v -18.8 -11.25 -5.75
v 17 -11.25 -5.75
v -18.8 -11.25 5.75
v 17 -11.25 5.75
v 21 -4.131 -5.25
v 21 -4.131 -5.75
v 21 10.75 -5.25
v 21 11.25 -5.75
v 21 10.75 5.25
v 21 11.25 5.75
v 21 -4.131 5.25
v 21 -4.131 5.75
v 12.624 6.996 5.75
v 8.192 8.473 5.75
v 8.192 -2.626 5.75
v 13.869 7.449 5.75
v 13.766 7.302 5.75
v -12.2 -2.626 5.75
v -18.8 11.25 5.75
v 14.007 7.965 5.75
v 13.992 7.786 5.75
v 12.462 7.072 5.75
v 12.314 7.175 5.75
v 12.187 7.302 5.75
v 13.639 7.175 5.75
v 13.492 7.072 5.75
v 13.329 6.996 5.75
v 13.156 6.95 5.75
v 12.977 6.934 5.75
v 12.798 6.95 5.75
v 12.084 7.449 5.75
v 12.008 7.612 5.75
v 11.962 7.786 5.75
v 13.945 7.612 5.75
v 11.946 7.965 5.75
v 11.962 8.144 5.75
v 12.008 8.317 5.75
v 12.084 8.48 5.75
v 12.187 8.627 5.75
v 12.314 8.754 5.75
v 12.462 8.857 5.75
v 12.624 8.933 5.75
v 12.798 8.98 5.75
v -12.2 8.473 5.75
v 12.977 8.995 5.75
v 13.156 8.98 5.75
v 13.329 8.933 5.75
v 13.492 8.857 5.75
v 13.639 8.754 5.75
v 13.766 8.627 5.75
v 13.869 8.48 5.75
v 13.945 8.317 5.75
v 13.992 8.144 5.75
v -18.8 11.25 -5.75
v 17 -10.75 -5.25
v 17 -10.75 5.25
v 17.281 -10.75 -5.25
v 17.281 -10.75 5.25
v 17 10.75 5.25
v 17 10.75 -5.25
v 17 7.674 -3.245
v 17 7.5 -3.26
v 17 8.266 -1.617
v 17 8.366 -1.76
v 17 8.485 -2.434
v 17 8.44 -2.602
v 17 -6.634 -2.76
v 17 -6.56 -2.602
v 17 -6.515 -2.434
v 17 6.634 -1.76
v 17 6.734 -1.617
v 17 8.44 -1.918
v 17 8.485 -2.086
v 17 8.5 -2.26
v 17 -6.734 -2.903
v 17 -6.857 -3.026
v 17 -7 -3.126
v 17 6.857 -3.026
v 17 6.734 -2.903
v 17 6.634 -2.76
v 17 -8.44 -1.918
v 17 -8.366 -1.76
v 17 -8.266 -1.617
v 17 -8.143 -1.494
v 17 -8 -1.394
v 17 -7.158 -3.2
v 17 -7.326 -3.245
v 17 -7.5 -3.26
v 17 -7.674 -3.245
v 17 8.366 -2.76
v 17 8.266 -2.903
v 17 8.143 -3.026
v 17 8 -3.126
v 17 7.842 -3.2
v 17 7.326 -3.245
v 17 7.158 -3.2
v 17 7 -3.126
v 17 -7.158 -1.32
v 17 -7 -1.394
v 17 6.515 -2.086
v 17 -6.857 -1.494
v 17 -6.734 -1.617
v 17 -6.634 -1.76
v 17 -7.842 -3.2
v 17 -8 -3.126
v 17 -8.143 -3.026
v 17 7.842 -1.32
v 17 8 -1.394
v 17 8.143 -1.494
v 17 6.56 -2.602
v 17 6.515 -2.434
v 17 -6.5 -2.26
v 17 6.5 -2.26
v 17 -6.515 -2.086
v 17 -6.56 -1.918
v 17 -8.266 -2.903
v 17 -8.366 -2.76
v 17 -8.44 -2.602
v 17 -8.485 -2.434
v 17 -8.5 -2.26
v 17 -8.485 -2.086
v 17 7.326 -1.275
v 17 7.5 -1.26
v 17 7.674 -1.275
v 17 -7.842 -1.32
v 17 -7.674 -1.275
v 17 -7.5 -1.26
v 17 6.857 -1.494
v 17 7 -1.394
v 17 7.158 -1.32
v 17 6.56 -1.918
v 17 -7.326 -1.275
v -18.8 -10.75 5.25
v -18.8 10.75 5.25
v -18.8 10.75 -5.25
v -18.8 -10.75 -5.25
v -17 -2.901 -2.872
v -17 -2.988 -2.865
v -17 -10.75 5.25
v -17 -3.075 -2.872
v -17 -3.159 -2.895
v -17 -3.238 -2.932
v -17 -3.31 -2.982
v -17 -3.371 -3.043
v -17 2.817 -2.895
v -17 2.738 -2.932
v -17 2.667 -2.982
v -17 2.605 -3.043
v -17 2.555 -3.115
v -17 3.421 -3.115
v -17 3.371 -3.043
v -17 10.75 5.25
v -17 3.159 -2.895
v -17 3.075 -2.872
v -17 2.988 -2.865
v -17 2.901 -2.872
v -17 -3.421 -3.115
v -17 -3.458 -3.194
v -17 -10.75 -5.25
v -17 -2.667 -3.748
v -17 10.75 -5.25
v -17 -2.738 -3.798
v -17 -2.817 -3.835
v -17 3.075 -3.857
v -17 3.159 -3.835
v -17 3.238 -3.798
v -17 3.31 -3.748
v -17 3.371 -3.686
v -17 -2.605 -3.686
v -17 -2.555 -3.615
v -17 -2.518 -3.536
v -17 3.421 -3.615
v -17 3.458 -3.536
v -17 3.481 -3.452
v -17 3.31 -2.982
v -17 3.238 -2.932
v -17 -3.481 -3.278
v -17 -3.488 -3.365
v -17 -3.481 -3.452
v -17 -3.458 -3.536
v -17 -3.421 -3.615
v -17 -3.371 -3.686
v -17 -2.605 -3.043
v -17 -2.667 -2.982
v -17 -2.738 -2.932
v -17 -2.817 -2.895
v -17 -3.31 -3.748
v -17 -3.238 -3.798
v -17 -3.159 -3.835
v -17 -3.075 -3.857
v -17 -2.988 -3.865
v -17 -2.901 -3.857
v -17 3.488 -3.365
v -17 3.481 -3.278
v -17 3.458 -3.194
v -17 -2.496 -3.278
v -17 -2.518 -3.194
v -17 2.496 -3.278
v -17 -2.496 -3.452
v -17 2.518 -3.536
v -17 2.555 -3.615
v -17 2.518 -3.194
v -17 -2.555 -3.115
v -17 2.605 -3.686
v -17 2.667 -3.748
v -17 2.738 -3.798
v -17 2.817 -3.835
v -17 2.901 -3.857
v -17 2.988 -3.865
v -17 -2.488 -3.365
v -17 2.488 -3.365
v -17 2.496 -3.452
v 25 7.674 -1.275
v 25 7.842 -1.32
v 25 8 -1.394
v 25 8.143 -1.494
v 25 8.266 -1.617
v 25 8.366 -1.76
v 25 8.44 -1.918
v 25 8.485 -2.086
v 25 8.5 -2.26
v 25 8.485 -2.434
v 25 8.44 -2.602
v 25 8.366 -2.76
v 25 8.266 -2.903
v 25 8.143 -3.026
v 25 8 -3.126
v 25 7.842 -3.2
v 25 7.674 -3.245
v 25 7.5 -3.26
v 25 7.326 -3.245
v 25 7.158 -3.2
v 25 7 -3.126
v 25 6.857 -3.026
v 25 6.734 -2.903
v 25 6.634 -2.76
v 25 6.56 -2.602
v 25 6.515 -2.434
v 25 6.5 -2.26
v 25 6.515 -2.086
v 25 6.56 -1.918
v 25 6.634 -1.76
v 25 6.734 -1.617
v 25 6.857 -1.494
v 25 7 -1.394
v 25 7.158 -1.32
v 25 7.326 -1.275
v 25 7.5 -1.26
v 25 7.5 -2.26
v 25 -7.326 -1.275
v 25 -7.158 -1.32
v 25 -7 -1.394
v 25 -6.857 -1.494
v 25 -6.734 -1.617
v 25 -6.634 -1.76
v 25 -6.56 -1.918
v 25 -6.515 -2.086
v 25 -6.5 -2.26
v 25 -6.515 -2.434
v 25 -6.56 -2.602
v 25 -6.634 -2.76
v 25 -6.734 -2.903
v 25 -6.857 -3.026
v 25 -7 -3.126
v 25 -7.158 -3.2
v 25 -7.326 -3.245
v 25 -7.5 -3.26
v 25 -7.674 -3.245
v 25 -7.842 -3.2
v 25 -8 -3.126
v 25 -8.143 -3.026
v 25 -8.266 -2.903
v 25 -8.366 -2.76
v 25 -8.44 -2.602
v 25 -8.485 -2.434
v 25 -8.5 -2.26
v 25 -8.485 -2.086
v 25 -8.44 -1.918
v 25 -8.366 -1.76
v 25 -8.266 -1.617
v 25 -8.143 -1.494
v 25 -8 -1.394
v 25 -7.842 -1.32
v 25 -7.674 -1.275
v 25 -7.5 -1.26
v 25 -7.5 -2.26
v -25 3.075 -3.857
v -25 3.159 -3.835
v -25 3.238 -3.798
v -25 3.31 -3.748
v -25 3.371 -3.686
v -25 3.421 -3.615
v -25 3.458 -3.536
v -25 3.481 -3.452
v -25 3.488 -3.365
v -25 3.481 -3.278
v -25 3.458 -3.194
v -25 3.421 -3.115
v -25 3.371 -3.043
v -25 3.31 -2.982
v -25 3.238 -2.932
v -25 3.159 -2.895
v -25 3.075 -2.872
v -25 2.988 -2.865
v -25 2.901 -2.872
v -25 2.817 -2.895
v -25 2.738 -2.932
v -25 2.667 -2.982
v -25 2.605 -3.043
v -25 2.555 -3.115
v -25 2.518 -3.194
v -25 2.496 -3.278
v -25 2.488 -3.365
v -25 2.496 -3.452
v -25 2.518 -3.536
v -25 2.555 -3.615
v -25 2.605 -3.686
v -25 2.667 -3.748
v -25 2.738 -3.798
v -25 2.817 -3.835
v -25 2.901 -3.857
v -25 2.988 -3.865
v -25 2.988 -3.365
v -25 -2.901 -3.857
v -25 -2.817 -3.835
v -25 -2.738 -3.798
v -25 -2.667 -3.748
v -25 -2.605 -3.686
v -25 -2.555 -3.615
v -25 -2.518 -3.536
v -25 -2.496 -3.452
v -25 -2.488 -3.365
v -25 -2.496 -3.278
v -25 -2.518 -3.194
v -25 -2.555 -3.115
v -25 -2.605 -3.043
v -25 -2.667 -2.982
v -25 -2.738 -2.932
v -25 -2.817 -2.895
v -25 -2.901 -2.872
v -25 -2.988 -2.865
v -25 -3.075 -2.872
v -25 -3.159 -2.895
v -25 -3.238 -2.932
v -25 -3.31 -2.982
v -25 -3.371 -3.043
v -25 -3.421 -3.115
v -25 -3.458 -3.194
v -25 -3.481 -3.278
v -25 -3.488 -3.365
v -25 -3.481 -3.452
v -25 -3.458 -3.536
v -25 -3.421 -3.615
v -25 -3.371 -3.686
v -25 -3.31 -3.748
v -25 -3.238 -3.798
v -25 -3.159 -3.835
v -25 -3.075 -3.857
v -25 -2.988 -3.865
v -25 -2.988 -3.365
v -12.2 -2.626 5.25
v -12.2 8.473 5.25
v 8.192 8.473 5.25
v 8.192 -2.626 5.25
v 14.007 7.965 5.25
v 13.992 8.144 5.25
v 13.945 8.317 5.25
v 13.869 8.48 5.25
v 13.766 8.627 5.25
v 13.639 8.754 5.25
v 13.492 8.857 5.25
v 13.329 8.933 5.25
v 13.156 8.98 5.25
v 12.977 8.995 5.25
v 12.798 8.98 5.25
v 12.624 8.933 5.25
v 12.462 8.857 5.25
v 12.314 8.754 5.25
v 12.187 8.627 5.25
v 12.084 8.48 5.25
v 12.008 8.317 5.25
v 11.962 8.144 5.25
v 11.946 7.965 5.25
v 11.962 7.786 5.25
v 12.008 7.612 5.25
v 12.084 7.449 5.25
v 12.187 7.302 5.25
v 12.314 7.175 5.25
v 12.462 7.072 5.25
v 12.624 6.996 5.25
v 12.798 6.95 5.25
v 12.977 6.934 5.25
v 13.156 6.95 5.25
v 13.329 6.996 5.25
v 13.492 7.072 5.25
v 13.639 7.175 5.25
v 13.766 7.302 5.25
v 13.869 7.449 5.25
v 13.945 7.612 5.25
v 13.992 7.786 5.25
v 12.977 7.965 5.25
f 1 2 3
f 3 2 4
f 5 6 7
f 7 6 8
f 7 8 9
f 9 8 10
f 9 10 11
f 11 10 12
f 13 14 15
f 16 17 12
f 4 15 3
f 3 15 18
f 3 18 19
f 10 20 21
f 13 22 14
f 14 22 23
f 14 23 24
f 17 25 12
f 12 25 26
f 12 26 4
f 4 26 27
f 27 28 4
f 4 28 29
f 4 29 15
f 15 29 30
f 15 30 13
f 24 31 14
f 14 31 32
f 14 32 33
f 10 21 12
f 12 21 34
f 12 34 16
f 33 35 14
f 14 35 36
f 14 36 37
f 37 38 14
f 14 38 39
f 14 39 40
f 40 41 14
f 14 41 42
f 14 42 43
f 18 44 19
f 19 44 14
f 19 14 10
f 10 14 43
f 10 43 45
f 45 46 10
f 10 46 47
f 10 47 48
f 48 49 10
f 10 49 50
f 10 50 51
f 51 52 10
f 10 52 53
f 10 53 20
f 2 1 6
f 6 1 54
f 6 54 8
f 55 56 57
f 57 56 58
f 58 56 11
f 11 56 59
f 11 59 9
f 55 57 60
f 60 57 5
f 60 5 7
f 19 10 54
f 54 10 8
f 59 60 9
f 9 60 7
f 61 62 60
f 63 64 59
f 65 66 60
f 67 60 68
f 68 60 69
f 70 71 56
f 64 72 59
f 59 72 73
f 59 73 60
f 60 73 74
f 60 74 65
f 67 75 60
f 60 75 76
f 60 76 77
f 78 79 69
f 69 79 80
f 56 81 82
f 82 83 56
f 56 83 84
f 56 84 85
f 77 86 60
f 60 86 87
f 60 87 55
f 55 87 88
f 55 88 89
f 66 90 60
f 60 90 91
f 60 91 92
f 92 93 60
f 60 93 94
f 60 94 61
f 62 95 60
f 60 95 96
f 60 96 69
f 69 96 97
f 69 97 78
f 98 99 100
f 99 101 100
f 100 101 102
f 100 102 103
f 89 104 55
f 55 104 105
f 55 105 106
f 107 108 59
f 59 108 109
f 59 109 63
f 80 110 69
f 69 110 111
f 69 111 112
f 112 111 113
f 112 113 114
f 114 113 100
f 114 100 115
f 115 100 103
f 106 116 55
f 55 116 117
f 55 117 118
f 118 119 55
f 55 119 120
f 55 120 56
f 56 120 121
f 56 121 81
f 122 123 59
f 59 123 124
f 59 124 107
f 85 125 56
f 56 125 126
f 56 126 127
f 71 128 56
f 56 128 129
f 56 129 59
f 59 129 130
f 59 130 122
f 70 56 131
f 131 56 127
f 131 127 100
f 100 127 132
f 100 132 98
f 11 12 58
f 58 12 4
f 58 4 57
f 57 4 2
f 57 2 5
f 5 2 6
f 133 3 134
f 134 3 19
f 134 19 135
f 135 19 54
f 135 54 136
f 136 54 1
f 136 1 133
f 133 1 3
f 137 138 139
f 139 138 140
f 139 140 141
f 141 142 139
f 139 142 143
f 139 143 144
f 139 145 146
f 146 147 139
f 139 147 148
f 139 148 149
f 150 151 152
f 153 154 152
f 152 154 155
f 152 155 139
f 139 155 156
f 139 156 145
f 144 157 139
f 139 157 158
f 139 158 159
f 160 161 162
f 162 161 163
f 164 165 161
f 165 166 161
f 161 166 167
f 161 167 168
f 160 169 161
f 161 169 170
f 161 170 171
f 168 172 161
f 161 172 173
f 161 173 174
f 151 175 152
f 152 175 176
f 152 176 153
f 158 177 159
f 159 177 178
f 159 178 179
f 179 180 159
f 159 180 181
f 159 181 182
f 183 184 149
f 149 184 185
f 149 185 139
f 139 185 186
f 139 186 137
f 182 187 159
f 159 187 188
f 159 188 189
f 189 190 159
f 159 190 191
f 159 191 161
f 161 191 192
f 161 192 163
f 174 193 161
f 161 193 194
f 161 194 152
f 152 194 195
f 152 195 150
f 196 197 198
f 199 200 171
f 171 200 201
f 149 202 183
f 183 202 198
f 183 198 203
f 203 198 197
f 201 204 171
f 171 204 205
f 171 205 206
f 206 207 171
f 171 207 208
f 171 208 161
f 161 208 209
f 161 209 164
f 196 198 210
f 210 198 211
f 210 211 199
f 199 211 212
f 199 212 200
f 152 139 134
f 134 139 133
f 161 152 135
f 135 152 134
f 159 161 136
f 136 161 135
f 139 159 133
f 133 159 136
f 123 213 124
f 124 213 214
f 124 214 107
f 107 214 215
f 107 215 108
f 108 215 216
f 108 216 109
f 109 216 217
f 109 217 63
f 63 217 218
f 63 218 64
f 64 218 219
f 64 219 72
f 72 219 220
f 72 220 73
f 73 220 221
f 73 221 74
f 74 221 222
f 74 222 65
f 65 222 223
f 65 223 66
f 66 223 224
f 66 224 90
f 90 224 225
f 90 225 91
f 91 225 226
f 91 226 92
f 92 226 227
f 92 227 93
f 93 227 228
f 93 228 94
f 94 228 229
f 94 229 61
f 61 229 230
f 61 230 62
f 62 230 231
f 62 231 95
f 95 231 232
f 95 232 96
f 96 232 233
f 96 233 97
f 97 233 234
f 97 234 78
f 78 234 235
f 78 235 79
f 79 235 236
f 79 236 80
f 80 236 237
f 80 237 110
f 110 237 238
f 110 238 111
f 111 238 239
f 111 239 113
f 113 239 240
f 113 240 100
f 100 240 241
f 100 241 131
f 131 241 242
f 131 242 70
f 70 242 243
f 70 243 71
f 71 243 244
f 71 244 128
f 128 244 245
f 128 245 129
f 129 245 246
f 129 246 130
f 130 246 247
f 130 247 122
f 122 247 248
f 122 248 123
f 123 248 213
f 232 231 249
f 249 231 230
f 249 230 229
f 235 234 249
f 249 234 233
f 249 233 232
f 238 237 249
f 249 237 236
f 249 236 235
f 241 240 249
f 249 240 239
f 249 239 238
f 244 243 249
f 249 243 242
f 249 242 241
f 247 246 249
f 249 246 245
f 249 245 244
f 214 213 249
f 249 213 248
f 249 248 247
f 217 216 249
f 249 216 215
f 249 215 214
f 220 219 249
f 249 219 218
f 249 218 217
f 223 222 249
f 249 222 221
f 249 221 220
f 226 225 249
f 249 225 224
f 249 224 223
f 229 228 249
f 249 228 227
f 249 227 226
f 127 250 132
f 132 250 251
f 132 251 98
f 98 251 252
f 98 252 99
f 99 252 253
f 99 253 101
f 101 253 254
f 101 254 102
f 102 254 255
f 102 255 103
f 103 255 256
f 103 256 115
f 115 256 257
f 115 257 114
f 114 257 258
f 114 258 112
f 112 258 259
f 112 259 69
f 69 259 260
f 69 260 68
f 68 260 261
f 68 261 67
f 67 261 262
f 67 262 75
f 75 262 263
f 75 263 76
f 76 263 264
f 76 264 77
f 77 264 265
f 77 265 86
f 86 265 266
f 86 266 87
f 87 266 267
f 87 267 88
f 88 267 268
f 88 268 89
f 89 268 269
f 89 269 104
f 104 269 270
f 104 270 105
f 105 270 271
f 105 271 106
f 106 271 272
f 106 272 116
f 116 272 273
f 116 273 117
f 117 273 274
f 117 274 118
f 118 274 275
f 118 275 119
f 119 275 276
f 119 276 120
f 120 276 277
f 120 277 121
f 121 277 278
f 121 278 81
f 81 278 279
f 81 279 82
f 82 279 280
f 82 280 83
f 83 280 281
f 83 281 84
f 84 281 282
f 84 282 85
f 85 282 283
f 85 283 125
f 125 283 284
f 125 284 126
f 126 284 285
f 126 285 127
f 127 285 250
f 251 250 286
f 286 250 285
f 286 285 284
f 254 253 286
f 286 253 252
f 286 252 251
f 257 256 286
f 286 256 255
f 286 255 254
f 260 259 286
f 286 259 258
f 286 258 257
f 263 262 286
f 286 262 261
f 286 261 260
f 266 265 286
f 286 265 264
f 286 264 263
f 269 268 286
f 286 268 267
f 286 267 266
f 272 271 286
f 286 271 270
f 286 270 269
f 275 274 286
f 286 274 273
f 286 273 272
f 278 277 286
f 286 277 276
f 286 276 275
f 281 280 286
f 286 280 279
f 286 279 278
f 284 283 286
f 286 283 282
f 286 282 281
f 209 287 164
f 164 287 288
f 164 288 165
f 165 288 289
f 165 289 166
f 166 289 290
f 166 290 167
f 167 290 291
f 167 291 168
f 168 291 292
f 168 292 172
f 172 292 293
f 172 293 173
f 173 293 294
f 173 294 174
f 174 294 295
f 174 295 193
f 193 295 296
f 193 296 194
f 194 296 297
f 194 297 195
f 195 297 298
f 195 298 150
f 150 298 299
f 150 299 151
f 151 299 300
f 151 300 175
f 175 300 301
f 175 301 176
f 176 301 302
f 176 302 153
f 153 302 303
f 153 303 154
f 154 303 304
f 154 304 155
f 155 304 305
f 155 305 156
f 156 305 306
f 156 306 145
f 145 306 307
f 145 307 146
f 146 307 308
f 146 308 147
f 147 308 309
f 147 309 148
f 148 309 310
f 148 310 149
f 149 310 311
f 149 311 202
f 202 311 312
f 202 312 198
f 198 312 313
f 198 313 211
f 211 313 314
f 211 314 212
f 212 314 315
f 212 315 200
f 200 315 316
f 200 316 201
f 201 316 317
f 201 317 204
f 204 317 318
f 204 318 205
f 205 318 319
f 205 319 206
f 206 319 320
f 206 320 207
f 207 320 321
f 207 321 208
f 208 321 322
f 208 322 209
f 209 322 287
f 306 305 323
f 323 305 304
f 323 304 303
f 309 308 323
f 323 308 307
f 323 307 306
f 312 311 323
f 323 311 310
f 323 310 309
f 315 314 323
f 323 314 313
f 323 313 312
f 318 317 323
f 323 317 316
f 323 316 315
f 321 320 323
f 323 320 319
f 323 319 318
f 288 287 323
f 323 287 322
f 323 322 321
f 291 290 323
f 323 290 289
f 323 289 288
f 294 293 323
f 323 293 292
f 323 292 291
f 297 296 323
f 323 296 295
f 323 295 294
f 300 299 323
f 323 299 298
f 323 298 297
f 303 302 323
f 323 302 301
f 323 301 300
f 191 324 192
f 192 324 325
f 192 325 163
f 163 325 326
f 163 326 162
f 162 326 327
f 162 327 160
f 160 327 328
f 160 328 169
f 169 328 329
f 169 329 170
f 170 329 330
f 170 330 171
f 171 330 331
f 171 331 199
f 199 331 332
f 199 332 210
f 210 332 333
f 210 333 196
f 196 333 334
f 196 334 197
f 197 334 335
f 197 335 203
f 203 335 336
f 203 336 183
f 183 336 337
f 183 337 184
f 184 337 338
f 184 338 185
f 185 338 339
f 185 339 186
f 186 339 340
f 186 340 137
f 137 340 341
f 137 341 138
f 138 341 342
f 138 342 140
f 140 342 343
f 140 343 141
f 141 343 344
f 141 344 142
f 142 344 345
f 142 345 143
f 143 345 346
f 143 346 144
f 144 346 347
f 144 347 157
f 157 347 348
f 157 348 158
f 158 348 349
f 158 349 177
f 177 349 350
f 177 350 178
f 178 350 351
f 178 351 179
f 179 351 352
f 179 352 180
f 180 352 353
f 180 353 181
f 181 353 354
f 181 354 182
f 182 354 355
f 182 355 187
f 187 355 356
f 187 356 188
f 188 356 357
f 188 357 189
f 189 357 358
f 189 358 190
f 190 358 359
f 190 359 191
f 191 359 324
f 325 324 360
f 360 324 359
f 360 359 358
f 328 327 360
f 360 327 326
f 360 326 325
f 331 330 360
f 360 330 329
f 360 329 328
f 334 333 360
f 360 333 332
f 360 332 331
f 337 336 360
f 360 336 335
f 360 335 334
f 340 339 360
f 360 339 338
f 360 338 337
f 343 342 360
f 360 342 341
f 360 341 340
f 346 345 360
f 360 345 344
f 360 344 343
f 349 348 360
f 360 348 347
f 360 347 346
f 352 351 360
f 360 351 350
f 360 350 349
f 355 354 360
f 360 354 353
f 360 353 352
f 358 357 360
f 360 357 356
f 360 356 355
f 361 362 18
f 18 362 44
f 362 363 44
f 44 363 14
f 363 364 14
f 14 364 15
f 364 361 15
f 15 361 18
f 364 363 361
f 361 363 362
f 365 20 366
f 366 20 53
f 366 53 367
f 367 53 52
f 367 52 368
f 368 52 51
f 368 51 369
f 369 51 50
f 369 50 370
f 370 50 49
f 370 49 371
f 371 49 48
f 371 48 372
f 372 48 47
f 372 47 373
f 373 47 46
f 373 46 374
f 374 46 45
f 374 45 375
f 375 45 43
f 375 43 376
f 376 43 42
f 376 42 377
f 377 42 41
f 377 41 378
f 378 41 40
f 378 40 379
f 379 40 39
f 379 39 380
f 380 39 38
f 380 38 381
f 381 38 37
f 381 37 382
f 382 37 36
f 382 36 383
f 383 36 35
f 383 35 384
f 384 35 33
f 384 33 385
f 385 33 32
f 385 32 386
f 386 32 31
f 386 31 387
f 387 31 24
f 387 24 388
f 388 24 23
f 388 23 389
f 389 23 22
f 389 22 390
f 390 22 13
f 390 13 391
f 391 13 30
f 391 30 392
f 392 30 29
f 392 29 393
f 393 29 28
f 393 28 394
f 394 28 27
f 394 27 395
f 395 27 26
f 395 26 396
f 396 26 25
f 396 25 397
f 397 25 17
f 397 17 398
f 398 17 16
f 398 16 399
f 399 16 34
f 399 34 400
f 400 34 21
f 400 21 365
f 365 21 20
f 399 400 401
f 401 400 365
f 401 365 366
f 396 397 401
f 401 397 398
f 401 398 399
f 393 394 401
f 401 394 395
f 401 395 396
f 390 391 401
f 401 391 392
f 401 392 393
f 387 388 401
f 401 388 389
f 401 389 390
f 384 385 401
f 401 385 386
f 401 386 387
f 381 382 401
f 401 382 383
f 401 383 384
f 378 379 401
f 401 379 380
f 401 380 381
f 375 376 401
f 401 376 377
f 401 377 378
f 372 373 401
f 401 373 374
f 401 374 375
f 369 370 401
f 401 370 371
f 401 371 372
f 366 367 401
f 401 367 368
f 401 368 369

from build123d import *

# Parameters (mm, degrees)
SKETCH1_W           = 42
SKETCH1_H           = 22.5
BOSS_EXTRUDE1_DEPTH = 5.75
SKETCH2_W           = 10.5
SKETCH2_H           = 21.5
CUT_EXTRUDE1_DEPTH  = 4
CUT_EXTRUDE3_DEPTH  = 12.5
SKETCH8_W           = 2.2
SKETCH8_H           = 22.5
CUT_EXTRUDE4_DEPTH  = 12.5
SKETCH3_R           = 1
BOSS_EXTRUDE2_DEPTH = 8
SKETCH4_R           = 0.5
BOSS_EXTRUDE3_DEPTH = 8
SKETCH5_R           = 1.030633651
SKETCH5_W           = 20.392034512
SKETCH5_H           = 11.098868447
CUT_EXTRUDE2_DEPTH  = 0.5


with BuildPart() as part:
    # Sketch1 → Boss-Extrude1 (new body, symmetric)
    with BuildSketch(Plane.XY):
        Rectangle(SKETCH1_W, SKETCH1_H)
    extrude(amount=BOSS_EXTRUDE1_DEPTH, both=True)

    # Sketch2 → Cut-Extrude1 (cut)
    with BuildSketch(Plane(origin=(21, 0, 0), x_dir=(0, 0, -1), z_dir=(1, 0, 0))):
        Rectangle(SKETCH2_W, SKETCH2_H)
    cut_extrude1 = extrude(amount=-CUT_EXTRUDE1_DEPTH, mode=Mode.SUBTRACT)

    # Mirror1: Cut-Extrude1 across plane
    add(cut_extrude1.mirror(Plane(origin=(0, 0, 0), x_dir=(0, 0, 1), z_dir=(1, 0, 0))), mode=Mode.SUBTRACT)

    # Sketch7 → Cut-Extrude3 (cut, through all)
    with BuildSketch(Plane.XY.offset(-5.75)):
        Polygon((24.167892902, -4.130649904), (21, -4.130649904), (17, -11.25), (17, -14.180704283), (24.167892902, -14.180704283), align=None)
    extrude(amount=CUT_EXTRUDE3_DEPTH, mode=Mode.SUBTRACT)

    # Sketch8 → Cut-Extrude4 (cut, through all)
    with BuildSketch(Plane.XY.offset(5.75)):
        with Locations((-19.9, 0)):
            Rectangle(SKETCH8_W, SKETCH8_H)
    extrude(amount=-CUT_EXTRUDE4_DEPTH, mode=Mode.SUBTRACT)

    # Sketch3 → Boss-Extrude2 (add)
    with BuildSketch(Plane(origin=(17, 0, 0), x_dir=(0, 0, -1), z_dir=(1, 0, 0))):
        with Locations((2.259944465, 7.5)):
            Circle(SKETCH3_R)
        with Locations((2.259944465, -7.5)):
            Circle(SKETCH3_R)
    extrude(amount=BOSS_EXTRUDE2_DEPTH)

    # Sketch4 → Boss-Extrude3 (add)
    with BuildSketch(Plane.ZY.offset(17)):
        with Locations((-3.364806204, 2.988148793)):
            Circle(SKETCH4_R)
        with Locations((-3.364806204, -2.988148793)):
            Circle(SKETCH4_R)
    extrude(amount=BOSS_EXTRUDE3_DEPTH)

    # Sketch5 → Cut-Extrude2 (cut)
    with BuildSketch(Plane.XY.offset(5.75)):
        with Locations((12.976825893, 7.964601522)):
            Circle(SKETCH5_R)
        with Locations((-2.003815564, 2.9231166)):
            Rectangle(SKETCH5_W, SKETCH5_H)
    extrude(amount=-CUT_EXTRUDE2_DEPTH, mode=Mode.SUBTRACT)


solid = part.part
